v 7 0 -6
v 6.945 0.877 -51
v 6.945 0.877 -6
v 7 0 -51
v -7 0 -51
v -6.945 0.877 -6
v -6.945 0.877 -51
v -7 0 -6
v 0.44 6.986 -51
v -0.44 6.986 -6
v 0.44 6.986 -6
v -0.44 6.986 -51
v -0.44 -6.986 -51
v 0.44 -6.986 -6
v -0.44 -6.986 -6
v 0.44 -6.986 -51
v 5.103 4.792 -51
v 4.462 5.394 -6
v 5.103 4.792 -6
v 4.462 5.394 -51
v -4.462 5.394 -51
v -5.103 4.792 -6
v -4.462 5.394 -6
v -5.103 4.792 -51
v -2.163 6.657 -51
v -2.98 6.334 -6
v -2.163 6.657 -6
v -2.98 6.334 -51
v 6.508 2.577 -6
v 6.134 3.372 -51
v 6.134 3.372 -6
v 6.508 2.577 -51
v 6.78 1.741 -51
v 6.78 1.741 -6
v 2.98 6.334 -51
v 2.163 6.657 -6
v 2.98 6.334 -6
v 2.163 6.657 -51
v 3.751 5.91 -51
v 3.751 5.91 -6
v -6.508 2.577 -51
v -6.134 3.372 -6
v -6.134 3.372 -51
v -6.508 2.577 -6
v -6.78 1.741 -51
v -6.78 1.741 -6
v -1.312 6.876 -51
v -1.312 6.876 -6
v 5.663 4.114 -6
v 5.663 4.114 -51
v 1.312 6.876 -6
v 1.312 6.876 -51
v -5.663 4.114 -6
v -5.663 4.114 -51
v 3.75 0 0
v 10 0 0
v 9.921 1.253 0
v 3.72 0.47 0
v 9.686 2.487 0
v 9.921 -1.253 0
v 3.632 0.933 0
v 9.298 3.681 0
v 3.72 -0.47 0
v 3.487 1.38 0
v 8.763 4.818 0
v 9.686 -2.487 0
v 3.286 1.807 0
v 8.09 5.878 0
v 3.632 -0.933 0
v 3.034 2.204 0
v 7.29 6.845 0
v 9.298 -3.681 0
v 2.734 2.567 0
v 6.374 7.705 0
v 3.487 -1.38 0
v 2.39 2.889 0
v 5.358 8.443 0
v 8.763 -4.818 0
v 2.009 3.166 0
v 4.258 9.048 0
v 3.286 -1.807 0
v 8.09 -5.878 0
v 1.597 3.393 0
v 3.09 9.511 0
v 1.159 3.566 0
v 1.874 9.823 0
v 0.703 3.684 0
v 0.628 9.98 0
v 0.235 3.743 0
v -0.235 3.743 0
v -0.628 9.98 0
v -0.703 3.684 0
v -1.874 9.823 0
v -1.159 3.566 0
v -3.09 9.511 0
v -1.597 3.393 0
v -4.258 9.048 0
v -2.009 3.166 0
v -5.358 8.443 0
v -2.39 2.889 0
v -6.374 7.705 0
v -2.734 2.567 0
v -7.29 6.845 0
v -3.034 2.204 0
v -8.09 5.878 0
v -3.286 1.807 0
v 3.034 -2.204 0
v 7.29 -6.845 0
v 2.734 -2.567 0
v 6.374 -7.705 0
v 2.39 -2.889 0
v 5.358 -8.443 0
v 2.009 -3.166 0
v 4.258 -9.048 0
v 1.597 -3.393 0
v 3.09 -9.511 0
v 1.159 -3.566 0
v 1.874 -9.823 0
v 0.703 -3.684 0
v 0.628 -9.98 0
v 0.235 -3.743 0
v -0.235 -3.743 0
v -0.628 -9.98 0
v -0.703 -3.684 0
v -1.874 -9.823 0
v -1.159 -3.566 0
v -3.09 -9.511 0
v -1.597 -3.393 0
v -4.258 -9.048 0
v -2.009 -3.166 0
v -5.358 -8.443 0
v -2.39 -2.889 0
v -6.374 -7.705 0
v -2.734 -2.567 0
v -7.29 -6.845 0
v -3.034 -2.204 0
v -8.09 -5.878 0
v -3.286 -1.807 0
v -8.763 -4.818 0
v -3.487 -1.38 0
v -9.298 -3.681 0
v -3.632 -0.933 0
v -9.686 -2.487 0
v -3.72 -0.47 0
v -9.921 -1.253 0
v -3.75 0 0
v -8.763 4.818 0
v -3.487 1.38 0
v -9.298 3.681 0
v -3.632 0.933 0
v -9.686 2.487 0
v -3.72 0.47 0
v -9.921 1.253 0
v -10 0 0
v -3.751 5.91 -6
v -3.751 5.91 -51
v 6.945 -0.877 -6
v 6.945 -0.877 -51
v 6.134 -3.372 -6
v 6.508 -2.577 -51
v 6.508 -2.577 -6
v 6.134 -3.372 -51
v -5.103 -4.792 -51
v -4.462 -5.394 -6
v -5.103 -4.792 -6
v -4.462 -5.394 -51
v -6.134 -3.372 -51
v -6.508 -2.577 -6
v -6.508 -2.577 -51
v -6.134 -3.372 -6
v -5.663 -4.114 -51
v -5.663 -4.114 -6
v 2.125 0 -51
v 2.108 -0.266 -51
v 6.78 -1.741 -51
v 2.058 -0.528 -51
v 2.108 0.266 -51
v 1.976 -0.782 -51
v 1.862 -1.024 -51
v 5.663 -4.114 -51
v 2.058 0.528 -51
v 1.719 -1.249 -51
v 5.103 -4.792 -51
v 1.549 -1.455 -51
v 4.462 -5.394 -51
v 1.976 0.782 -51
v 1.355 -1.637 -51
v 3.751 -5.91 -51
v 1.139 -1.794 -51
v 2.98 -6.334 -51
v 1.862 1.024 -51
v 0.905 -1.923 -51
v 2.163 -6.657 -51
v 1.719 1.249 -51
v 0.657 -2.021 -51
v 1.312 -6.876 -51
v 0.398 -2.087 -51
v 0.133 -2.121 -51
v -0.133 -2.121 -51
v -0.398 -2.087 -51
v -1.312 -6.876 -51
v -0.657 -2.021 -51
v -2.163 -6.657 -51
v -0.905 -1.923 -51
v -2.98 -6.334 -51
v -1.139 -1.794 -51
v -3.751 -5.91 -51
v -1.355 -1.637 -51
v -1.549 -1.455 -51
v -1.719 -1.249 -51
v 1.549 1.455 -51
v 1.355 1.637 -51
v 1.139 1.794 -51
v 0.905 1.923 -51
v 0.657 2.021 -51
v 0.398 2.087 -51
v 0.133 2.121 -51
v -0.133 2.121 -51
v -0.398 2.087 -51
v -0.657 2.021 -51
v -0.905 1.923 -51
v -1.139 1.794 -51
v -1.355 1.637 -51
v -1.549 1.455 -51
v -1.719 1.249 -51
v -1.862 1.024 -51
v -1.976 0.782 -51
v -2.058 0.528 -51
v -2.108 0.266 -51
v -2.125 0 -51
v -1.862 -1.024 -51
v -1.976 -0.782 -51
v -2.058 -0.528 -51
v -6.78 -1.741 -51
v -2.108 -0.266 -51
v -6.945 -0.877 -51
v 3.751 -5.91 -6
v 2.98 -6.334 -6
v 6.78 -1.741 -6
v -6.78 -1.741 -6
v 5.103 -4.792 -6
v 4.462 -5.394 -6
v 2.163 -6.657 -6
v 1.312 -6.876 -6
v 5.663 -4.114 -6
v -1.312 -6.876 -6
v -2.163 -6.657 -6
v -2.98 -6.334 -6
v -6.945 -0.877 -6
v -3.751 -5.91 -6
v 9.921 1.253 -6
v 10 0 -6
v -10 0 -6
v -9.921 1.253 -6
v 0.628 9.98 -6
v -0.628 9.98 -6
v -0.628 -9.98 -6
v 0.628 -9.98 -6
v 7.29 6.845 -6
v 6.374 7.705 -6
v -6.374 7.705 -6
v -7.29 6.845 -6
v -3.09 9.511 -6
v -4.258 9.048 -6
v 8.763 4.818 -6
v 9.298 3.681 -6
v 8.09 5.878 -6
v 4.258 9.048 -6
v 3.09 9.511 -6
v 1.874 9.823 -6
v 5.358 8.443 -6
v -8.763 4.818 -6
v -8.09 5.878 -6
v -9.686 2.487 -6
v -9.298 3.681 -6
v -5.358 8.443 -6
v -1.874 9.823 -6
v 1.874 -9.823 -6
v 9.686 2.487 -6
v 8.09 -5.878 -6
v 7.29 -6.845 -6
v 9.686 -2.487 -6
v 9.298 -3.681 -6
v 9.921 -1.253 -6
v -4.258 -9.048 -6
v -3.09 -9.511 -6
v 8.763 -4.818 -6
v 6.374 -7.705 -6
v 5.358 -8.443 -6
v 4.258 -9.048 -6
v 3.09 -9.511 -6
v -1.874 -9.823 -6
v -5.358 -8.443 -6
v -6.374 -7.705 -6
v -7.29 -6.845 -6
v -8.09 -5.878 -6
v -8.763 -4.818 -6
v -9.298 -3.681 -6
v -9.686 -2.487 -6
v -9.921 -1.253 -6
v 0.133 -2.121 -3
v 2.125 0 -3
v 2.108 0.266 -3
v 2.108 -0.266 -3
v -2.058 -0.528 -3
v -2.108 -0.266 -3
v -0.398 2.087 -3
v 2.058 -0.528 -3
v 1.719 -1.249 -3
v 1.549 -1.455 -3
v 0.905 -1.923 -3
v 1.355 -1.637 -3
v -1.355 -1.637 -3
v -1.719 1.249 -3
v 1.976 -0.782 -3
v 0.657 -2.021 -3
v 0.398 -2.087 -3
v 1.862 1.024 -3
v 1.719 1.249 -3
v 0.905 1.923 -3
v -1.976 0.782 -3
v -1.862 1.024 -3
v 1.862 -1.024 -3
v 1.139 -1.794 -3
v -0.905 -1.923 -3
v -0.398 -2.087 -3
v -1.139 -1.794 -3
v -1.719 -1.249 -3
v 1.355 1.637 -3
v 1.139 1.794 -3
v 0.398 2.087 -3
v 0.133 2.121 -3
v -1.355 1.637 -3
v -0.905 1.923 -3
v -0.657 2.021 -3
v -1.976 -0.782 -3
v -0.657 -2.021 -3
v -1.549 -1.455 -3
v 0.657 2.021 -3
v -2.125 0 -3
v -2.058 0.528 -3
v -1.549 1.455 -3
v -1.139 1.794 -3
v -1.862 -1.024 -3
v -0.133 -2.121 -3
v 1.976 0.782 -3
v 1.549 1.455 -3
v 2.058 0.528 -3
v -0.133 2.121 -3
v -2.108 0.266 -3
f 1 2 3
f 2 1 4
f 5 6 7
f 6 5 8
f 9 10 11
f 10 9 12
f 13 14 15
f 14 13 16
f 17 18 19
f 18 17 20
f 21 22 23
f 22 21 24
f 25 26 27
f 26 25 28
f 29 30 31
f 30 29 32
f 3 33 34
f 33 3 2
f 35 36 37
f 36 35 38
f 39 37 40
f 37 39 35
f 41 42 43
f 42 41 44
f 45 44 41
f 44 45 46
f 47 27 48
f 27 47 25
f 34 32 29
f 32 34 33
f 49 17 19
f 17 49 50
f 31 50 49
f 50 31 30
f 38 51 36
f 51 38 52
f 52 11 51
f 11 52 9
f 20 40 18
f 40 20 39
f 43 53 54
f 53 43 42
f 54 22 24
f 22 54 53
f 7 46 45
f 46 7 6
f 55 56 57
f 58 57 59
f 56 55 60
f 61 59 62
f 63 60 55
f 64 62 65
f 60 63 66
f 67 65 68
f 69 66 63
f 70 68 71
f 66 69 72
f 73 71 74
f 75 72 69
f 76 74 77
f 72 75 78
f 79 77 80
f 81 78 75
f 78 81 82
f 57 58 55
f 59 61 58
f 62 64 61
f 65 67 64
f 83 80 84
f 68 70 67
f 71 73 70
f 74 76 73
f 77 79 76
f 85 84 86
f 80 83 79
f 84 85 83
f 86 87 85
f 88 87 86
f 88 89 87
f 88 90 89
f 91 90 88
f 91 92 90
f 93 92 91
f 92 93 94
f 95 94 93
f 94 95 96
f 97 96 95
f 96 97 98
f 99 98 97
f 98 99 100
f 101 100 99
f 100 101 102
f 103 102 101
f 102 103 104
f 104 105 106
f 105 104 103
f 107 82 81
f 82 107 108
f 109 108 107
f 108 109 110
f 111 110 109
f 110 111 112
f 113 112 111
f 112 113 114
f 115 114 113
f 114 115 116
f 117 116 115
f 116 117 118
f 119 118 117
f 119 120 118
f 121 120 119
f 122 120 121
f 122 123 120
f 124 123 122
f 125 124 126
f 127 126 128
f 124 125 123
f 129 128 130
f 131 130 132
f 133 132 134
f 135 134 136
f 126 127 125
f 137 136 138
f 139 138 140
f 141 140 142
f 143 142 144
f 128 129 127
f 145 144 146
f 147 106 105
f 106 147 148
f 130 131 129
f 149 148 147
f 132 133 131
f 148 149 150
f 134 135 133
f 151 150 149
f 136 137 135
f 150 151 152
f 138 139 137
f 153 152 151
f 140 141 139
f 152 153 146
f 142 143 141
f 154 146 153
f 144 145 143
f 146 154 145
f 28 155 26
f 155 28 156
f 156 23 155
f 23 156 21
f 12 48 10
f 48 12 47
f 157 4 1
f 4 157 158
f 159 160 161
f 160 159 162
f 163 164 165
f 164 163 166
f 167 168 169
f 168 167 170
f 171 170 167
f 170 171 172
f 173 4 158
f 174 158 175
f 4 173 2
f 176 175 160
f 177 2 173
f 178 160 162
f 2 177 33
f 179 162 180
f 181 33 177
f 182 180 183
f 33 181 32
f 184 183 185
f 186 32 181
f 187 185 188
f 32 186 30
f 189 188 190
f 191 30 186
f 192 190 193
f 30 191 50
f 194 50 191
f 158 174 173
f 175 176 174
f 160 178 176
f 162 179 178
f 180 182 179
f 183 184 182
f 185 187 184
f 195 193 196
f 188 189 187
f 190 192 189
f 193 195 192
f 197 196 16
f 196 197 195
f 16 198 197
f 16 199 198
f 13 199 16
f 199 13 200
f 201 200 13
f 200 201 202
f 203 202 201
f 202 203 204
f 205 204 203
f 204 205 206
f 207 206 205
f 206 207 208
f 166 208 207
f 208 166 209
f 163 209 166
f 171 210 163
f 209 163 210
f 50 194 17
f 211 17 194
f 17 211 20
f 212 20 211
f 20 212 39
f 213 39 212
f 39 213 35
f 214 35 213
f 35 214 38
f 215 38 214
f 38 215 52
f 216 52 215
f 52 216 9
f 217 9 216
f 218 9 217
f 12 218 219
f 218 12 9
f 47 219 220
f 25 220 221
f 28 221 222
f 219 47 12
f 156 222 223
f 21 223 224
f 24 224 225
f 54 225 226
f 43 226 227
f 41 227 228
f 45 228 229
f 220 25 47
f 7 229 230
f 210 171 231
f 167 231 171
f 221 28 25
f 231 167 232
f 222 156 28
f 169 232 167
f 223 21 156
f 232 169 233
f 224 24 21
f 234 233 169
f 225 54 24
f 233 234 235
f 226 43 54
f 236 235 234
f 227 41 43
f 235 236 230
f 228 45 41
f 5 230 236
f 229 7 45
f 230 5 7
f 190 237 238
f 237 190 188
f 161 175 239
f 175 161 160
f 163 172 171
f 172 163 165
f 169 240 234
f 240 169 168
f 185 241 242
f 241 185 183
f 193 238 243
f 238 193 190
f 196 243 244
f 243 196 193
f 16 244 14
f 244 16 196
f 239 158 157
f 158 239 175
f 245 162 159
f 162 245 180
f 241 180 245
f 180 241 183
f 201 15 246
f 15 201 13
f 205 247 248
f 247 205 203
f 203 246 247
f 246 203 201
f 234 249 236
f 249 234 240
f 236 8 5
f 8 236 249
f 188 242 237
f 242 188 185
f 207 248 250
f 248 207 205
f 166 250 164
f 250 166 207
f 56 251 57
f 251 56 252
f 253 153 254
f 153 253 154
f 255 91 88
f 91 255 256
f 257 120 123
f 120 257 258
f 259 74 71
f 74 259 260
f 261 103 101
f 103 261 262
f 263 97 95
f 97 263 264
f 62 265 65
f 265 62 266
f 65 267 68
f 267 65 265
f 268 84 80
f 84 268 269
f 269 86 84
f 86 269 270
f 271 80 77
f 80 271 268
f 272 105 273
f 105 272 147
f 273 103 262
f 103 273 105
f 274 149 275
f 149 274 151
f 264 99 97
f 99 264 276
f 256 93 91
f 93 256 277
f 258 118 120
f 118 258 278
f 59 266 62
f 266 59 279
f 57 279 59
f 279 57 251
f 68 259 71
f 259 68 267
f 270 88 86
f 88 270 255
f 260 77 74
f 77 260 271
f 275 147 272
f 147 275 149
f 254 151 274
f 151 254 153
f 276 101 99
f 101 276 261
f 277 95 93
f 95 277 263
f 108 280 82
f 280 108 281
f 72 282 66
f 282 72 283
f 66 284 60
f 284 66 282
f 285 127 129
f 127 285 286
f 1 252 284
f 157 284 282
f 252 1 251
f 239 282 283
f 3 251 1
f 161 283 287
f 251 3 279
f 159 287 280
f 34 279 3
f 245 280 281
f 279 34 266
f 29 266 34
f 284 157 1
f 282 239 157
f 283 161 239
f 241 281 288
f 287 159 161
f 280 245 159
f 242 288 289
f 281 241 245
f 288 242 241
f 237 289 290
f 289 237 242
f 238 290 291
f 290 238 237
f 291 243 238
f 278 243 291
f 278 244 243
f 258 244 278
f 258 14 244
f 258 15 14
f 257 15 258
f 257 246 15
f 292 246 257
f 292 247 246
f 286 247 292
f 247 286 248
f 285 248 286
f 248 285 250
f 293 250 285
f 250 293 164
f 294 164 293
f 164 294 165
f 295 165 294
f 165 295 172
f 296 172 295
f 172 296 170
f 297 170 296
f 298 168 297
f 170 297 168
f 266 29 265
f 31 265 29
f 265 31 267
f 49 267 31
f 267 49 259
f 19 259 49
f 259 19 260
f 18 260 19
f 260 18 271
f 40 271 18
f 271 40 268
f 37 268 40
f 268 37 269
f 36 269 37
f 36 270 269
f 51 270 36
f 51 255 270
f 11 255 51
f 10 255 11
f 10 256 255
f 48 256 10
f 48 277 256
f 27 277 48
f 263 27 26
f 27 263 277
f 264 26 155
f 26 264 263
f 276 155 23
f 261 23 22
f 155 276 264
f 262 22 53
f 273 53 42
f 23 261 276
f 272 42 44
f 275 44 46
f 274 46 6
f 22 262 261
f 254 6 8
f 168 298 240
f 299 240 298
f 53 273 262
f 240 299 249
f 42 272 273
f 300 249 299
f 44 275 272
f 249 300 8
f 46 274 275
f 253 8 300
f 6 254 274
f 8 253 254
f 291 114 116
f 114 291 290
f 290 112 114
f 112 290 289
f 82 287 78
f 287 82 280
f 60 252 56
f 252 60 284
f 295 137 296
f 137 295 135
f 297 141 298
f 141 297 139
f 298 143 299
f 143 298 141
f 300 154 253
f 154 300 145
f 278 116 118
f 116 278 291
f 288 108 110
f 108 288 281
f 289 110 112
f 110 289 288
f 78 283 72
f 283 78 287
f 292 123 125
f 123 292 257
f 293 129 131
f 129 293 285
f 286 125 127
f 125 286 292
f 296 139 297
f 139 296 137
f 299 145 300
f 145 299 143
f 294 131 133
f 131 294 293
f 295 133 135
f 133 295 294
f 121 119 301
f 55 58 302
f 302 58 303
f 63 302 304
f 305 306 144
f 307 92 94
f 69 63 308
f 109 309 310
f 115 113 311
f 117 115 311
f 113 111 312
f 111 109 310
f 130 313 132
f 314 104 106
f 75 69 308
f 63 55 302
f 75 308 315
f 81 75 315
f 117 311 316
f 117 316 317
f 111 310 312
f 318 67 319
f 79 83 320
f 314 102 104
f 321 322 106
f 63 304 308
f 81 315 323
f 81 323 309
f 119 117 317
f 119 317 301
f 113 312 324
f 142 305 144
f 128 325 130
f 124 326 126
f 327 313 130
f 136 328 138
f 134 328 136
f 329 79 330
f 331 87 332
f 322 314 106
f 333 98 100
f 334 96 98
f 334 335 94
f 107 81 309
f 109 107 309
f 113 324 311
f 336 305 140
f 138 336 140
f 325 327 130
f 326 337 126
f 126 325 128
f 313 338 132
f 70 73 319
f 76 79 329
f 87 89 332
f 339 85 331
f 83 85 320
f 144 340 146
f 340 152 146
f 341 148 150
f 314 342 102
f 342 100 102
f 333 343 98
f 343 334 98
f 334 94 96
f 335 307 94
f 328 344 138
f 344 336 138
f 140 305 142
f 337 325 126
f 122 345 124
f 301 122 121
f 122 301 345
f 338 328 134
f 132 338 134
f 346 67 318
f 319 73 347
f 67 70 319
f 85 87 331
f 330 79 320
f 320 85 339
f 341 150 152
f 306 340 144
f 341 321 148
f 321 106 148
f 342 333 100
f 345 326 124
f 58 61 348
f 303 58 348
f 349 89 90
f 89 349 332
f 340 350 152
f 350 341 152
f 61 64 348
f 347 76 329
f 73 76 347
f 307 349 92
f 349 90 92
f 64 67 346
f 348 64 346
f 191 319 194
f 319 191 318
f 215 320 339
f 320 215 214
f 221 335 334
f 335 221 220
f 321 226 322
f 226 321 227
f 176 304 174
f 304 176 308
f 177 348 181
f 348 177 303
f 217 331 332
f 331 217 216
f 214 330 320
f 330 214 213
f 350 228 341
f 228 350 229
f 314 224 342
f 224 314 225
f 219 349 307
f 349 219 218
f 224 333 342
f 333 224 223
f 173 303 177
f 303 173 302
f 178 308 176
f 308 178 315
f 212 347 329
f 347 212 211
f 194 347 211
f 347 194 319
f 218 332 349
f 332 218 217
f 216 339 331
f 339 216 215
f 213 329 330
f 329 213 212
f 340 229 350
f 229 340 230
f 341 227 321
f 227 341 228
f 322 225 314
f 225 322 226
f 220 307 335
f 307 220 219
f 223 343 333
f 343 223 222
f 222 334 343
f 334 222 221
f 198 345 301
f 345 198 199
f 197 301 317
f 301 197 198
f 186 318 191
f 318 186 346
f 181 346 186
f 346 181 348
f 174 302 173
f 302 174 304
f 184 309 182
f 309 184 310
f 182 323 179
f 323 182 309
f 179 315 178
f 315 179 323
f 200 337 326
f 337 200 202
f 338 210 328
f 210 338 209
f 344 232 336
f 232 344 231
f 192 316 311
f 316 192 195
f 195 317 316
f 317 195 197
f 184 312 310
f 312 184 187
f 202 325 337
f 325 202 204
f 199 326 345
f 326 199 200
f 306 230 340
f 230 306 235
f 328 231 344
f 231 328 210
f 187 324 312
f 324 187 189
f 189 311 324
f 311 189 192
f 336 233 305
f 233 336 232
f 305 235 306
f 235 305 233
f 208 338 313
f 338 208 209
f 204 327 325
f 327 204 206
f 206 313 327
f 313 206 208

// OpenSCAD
$fn = 50;


difference() {
	union() {
		translate(v = [0, 0, -51.0000000000]) {
			cylinder(h = 51, r = 7.0000000000);
		}
		translate(v = [0, 0, -6.0000000000]) {
			cylinder(h = 6, r = 10.0000000000);
		}
	}
	union() {
		translate(v = [0, 0, 0]) {
			rotate(a = [0, 0, 0]) {
				difference() {
					union() {
						#translate(v = [0, 0, -51.0000000000]) {
							cylinder(h = 51, r = 2.0000000000);
						}
						#translate(v = [0, 0, -3]) {
							cylinder(h = 3, r1 = 2.1250000000, r2 = 3.7500000000);
						}
						#translate(v = [0, 0, -51.0000000000]) {
							cylinder(h = 51, r = 2.1250000000);
						}
						#translate(v = [0, 0, -51.0000000000]) {
							cylinder(h = 51, r = 2.0000000000);
						}
					}
					union();
				}
			}
		}
	}
}
